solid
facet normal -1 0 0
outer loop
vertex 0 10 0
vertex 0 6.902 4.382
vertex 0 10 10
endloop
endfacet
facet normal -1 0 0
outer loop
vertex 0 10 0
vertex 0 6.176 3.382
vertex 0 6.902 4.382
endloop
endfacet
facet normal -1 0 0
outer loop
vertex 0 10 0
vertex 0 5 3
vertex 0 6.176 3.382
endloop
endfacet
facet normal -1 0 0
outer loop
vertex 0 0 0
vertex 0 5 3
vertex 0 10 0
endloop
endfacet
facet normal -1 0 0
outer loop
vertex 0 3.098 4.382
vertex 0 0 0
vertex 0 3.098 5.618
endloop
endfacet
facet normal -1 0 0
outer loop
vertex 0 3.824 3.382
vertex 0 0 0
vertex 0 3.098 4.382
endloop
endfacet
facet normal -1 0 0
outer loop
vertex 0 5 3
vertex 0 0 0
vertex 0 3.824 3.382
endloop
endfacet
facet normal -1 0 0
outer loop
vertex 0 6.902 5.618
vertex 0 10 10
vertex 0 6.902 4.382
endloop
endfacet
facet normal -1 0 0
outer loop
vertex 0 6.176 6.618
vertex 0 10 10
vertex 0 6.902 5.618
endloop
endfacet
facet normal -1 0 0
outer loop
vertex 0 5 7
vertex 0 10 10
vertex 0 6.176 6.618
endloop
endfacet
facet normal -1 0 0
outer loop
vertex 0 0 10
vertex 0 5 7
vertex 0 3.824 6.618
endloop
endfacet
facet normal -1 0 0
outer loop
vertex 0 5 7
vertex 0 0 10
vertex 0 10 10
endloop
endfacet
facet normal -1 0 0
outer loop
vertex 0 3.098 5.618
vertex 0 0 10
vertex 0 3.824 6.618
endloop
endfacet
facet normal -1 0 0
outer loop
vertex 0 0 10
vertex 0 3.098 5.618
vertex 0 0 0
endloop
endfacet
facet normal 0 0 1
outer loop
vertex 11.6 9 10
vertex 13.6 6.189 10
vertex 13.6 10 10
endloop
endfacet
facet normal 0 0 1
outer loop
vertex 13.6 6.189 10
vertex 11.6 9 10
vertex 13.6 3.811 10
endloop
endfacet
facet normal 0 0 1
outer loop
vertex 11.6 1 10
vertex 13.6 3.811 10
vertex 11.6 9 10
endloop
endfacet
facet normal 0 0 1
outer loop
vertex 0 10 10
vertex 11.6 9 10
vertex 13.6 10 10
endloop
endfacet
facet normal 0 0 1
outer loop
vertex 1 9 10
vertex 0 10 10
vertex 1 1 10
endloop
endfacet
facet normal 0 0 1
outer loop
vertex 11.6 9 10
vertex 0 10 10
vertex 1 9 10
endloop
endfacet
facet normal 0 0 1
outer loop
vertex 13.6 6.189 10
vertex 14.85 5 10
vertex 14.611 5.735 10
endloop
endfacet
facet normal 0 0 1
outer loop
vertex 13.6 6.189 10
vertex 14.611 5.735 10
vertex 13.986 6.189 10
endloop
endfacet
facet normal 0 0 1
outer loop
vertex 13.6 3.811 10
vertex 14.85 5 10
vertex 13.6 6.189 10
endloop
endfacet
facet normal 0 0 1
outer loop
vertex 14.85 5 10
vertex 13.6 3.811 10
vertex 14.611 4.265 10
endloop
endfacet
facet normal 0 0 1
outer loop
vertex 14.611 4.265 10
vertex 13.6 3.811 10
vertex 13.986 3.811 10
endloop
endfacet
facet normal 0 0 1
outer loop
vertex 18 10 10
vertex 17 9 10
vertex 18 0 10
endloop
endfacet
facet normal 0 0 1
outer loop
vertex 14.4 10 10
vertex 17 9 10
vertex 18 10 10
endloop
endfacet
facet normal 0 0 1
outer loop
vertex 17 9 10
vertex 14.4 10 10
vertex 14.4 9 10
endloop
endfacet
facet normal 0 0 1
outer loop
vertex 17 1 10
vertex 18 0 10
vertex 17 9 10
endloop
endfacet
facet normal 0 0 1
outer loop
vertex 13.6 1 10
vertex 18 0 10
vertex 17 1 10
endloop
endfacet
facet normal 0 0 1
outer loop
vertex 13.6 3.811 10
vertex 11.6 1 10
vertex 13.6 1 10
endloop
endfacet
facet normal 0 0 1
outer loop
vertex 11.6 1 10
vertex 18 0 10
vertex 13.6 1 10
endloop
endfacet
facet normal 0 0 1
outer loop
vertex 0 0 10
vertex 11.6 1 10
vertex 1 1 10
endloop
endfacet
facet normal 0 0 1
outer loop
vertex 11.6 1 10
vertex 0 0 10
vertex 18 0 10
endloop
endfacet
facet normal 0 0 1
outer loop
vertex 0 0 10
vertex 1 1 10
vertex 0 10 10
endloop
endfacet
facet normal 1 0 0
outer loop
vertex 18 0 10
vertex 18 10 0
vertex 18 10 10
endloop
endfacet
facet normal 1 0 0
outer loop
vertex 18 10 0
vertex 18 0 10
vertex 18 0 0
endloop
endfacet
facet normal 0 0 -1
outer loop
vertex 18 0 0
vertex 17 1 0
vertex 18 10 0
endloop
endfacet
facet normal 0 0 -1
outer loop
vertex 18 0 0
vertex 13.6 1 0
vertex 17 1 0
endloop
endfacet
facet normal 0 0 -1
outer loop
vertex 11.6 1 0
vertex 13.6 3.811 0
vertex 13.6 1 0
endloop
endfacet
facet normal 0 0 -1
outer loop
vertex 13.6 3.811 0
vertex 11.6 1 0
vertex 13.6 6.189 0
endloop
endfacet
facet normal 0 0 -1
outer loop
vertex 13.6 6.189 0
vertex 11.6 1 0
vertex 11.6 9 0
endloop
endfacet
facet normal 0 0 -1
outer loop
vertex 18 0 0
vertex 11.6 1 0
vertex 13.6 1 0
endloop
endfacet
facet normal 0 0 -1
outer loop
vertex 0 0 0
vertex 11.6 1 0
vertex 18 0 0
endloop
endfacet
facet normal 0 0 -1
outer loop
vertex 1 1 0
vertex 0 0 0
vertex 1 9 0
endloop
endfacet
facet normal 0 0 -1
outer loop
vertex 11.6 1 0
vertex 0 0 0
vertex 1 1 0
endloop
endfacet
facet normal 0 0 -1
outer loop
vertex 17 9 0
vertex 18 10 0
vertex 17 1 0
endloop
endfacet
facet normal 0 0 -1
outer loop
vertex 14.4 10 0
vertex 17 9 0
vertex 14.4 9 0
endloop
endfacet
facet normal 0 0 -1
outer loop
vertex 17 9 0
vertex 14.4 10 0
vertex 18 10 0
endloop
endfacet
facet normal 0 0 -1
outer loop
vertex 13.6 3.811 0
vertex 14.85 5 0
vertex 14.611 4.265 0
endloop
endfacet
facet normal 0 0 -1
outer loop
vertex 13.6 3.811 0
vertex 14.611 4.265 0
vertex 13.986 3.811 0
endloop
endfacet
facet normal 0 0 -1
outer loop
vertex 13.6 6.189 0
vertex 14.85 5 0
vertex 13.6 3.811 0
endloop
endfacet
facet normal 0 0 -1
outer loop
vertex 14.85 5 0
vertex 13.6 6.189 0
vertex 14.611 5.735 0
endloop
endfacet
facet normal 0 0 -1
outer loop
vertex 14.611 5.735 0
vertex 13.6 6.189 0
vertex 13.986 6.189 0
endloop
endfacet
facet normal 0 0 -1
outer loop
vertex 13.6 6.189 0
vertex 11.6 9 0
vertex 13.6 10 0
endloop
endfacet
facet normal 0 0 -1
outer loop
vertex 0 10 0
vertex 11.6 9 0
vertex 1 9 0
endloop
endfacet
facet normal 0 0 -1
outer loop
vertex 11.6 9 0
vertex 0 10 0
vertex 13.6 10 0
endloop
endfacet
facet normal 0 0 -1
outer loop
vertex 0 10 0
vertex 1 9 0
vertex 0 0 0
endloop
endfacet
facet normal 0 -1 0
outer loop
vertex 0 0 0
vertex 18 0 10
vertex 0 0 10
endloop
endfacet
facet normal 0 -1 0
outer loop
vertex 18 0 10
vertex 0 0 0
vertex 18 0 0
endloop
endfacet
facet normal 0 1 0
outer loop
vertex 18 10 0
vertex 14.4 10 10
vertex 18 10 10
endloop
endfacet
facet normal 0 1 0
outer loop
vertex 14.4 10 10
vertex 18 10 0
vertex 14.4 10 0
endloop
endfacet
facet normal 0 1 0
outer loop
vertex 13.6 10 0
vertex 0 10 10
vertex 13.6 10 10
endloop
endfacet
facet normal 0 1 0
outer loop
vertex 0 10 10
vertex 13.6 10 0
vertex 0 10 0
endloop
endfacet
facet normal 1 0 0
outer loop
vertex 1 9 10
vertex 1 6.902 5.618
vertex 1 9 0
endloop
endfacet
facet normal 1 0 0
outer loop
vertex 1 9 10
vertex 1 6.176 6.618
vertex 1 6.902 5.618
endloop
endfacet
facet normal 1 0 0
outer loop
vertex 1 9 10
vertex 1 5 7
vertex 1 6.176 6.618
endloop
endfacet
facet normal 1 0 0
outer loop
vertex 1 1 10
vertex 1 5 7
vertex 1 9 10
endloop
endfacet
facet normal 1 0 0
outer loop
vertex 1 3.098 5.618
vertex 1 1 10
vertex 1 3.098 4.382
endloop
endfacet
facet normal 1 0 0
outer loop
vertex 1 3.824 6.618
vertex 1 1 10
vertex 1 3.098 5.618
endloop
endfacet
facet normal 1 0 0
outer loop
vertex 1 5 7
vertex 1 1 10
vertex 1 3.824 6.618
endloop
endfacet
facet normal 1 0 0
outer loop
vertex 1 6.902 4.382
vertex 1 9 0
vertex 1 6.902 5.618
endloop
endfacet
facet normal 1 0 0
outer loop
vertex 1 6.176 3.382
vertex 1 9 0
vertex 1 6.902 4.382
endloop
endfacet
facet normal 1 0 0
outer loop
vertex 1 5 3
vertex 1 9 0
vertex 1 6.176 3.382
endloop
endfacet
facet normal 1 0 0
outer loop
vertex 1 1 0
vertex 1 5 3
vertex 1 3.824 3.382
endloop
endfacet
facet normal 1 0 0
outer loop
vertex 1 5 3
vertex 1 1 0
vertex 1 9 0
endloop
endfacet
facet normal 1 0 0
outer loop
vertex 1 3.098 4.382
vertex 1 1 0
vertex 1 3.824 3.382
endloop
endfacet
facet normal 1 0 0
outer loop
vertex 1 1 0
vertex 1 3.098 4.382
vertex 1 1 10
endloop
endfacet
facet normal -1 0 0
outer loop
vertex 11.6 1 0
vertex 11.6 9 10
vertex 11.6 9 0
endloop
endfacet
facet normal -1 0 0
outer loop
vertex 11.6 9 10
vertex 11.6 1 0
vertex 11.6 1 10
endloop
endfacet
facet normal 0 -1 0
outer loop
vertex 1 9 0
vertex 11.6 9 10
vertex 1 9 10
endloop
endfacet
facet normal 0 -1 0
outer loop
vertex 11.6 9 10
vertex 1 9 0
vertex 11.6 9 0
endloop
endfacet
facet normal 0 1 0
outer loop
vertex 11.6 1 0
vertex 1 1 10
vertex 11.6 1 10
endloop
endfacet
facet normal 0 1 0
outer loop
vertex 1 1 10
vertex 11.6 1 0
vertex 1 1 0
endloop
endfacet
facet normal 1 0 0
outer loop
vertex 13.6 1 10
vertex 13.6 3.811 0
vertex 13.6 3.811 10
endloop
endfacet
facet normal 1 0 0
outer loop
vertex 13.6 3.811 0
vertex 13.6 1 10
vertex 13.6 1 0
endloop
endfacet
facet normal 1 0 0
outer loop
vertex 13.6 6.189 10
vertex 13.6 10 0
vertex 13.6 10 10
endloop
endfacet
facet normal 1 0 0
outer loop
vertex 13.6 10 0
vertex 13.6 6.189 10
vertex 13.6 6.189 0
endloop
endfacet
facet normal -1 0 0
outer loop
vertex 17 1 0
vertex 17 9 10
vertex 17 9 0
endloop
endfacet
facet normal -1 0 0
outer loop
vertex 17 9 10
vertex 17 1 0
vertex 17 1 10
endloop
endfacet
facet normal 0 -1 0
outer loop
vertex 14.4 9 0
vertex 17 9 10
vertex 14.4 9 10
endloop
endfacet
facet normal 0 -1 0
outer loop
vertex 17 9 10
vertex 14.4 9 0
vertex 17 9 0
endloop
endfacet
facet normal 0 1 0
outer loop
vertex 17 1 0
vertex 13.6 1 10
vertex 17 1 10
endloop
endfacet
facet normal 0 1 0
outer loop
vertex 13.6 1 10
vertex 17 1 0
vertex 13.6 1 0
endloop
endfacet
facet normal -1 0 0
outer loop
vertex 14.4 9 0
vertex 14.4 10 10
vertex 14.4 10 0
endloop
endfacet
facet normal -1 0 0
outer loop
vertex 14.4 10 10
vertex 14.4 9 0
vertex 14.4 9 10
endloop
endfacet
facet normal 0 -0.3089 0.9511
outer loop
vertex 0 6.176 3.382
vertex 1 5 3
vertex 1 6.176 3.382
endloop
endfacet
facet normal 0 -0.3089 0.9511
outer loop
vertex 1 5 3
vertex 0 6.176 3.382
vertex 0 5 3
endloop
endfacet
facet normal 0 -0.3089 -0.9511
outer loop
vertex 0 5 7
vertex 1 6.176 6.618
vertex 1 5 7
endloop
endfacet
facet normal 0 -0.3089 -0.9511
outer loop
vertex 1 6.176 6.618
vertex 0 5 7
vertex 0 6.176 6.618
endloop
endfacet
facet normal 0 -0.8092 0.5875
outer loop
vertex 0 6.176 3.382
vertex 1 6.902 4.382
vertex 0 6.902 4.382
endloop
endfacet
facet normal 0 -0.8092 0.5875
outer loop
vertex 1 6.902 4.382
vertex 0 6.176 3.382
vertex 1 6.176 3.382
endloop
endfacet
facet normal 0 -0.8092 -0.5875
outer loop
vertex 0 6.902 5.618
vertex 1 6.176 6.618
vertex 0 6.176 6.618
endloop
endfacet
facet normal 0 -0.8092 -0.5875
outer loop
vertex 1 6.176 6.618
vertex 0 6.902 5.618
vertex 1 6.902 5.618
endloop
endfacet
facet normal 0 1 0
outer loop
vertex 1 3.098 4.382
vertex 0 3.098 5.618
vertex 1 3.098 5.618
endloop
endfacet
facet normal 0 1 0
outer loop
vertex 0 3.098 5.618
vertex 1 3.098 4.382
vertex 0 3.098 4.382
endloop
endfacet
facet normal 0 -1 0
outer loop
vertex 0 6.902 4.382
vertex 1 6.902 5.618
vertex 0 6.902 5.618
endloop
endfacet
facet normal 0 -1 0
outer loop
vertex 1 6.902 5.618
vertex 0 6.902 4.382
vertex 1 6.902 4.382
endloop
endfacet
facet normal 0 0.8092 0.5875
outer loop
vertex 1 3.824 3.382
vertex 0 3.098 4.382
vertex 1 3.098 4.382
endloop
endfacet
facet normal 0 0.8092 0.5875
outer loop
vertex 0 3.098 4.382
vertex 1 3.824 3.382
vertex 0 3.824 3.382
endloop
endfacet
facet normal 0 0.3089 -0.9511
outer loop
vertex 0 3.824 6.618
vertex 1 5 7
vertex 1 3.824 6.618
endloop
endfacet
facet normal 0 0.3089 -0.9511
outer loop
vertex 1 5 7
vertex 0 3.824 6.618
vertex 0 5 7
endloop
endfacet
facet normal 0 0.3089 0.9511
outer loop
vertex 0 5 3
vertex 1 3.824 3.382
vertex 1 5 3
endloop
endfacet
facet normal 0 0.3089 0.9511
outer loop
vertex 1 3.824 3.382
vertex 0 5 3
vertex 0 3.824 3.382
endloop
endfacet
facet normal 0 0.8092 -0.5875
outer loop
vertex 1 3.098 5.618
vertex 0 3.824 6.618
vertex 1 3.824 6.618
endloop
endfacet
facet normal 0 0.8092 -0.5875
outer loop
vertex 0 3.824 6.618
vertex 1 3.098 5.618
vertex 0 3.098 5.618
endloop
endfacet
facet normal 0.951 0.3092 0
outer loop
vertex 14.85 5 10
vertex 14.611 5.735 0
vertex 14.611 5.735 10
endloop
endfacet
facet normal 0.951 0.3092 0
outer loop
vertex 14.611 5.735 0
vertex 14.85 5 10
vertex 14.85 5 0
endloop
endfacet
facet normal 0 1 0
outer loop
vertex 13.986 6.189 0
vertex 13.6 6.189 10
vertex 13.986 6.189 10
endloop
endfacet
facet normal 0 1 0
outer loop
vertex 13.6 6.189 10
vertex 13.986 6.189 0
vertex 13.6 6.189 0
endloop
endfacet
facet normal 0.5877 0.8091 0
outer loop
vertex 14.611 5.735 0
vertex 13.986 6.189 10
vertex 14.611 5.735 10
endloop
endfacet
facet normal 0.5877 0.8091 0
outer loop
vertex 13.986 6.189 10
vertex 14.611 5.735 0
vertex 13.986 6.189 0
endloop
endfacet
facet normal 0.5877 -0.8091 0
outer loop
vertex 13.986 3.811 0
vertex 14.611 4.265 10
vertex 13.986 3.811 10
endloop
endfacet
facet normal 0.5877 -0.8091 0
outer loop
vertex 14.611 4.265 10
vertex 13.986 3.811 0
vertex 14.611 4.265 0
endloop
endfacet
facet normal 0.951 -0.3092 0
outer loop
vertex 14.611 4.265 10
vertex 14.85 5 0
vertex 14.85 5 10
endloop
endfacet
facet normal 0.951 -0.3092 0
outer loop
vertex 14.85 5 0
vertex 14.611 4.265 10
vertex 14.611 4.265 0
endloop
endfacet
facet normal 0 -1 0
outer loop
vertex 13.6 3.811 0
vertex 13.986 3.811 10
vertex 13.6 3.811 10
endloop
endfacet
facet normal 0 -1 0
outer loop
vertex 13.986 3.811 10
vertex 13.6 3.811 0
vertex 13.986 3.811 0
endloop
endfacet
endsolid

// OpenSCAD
/* [Dimensions] */
// Inner Diameter in mm
DIA = 30;//[10:60]

// height in mm
HEIGHT = 10; //[06:12]

// width in mm
WIDTH = 10; //[06:16]

// depth in mm
DEPTH= 18; //[03:22]

// Strength in mm
STRENGTH = 01; //[01:05]

// Create with open base
OPEN_BASE = false;//[false:true]

// measures in mm


    difference(){
        cube([DEPTH,WIDTH,HEIGHT]);//Base
        
        translate([STRENGTH,STRENGTH,0])cube([DEPTH*0.7-2*STRENGTH,WIDTH-2*STRENGTH,HEIGHT]);//upper cutout
        
        translate([STRENGTH+DEPTH*0.7,STRENGTH,0])cube([DEPTH*0.3-2*STRENGTH,WIDTH-2*STRENGTH,HEIGHT]);//lower cutout

//        translate([DEPTH*0.6-STRENGTH,(WIDTH-2*STRENGTH)/2,0])cube([0.3,2,HEIGHT]);//fixing notch
        
        translate([STRENGTH+DEPTH*0.7,STRENGTH,0])cube([DEPTH*0.3-2-2*STRENGTH*1.3,WIDTH-1*STRENGTH,HEIGHT]);//opening


                
        
        rotate([0,90,0])translate([-HEIGHT/2,WIDTH*0.5,0])cylinder(h= 5, r=2, $fn=10);//Screw hole
        
        if (OPEN_BASE == true){
        translate([STRENGTH-5,STRENGTH,0])cube([30-2*STRENGTH,WIDTH-2*STRENGTH,HEIGHT]);//Open Base
        }
    }
    
            translate([STRENGTH+DEPTH*0.7,WIDTH*0.5,0])cylinder(h=HEIGHT, r=WIDTH/8, $fn=10);//retaining
